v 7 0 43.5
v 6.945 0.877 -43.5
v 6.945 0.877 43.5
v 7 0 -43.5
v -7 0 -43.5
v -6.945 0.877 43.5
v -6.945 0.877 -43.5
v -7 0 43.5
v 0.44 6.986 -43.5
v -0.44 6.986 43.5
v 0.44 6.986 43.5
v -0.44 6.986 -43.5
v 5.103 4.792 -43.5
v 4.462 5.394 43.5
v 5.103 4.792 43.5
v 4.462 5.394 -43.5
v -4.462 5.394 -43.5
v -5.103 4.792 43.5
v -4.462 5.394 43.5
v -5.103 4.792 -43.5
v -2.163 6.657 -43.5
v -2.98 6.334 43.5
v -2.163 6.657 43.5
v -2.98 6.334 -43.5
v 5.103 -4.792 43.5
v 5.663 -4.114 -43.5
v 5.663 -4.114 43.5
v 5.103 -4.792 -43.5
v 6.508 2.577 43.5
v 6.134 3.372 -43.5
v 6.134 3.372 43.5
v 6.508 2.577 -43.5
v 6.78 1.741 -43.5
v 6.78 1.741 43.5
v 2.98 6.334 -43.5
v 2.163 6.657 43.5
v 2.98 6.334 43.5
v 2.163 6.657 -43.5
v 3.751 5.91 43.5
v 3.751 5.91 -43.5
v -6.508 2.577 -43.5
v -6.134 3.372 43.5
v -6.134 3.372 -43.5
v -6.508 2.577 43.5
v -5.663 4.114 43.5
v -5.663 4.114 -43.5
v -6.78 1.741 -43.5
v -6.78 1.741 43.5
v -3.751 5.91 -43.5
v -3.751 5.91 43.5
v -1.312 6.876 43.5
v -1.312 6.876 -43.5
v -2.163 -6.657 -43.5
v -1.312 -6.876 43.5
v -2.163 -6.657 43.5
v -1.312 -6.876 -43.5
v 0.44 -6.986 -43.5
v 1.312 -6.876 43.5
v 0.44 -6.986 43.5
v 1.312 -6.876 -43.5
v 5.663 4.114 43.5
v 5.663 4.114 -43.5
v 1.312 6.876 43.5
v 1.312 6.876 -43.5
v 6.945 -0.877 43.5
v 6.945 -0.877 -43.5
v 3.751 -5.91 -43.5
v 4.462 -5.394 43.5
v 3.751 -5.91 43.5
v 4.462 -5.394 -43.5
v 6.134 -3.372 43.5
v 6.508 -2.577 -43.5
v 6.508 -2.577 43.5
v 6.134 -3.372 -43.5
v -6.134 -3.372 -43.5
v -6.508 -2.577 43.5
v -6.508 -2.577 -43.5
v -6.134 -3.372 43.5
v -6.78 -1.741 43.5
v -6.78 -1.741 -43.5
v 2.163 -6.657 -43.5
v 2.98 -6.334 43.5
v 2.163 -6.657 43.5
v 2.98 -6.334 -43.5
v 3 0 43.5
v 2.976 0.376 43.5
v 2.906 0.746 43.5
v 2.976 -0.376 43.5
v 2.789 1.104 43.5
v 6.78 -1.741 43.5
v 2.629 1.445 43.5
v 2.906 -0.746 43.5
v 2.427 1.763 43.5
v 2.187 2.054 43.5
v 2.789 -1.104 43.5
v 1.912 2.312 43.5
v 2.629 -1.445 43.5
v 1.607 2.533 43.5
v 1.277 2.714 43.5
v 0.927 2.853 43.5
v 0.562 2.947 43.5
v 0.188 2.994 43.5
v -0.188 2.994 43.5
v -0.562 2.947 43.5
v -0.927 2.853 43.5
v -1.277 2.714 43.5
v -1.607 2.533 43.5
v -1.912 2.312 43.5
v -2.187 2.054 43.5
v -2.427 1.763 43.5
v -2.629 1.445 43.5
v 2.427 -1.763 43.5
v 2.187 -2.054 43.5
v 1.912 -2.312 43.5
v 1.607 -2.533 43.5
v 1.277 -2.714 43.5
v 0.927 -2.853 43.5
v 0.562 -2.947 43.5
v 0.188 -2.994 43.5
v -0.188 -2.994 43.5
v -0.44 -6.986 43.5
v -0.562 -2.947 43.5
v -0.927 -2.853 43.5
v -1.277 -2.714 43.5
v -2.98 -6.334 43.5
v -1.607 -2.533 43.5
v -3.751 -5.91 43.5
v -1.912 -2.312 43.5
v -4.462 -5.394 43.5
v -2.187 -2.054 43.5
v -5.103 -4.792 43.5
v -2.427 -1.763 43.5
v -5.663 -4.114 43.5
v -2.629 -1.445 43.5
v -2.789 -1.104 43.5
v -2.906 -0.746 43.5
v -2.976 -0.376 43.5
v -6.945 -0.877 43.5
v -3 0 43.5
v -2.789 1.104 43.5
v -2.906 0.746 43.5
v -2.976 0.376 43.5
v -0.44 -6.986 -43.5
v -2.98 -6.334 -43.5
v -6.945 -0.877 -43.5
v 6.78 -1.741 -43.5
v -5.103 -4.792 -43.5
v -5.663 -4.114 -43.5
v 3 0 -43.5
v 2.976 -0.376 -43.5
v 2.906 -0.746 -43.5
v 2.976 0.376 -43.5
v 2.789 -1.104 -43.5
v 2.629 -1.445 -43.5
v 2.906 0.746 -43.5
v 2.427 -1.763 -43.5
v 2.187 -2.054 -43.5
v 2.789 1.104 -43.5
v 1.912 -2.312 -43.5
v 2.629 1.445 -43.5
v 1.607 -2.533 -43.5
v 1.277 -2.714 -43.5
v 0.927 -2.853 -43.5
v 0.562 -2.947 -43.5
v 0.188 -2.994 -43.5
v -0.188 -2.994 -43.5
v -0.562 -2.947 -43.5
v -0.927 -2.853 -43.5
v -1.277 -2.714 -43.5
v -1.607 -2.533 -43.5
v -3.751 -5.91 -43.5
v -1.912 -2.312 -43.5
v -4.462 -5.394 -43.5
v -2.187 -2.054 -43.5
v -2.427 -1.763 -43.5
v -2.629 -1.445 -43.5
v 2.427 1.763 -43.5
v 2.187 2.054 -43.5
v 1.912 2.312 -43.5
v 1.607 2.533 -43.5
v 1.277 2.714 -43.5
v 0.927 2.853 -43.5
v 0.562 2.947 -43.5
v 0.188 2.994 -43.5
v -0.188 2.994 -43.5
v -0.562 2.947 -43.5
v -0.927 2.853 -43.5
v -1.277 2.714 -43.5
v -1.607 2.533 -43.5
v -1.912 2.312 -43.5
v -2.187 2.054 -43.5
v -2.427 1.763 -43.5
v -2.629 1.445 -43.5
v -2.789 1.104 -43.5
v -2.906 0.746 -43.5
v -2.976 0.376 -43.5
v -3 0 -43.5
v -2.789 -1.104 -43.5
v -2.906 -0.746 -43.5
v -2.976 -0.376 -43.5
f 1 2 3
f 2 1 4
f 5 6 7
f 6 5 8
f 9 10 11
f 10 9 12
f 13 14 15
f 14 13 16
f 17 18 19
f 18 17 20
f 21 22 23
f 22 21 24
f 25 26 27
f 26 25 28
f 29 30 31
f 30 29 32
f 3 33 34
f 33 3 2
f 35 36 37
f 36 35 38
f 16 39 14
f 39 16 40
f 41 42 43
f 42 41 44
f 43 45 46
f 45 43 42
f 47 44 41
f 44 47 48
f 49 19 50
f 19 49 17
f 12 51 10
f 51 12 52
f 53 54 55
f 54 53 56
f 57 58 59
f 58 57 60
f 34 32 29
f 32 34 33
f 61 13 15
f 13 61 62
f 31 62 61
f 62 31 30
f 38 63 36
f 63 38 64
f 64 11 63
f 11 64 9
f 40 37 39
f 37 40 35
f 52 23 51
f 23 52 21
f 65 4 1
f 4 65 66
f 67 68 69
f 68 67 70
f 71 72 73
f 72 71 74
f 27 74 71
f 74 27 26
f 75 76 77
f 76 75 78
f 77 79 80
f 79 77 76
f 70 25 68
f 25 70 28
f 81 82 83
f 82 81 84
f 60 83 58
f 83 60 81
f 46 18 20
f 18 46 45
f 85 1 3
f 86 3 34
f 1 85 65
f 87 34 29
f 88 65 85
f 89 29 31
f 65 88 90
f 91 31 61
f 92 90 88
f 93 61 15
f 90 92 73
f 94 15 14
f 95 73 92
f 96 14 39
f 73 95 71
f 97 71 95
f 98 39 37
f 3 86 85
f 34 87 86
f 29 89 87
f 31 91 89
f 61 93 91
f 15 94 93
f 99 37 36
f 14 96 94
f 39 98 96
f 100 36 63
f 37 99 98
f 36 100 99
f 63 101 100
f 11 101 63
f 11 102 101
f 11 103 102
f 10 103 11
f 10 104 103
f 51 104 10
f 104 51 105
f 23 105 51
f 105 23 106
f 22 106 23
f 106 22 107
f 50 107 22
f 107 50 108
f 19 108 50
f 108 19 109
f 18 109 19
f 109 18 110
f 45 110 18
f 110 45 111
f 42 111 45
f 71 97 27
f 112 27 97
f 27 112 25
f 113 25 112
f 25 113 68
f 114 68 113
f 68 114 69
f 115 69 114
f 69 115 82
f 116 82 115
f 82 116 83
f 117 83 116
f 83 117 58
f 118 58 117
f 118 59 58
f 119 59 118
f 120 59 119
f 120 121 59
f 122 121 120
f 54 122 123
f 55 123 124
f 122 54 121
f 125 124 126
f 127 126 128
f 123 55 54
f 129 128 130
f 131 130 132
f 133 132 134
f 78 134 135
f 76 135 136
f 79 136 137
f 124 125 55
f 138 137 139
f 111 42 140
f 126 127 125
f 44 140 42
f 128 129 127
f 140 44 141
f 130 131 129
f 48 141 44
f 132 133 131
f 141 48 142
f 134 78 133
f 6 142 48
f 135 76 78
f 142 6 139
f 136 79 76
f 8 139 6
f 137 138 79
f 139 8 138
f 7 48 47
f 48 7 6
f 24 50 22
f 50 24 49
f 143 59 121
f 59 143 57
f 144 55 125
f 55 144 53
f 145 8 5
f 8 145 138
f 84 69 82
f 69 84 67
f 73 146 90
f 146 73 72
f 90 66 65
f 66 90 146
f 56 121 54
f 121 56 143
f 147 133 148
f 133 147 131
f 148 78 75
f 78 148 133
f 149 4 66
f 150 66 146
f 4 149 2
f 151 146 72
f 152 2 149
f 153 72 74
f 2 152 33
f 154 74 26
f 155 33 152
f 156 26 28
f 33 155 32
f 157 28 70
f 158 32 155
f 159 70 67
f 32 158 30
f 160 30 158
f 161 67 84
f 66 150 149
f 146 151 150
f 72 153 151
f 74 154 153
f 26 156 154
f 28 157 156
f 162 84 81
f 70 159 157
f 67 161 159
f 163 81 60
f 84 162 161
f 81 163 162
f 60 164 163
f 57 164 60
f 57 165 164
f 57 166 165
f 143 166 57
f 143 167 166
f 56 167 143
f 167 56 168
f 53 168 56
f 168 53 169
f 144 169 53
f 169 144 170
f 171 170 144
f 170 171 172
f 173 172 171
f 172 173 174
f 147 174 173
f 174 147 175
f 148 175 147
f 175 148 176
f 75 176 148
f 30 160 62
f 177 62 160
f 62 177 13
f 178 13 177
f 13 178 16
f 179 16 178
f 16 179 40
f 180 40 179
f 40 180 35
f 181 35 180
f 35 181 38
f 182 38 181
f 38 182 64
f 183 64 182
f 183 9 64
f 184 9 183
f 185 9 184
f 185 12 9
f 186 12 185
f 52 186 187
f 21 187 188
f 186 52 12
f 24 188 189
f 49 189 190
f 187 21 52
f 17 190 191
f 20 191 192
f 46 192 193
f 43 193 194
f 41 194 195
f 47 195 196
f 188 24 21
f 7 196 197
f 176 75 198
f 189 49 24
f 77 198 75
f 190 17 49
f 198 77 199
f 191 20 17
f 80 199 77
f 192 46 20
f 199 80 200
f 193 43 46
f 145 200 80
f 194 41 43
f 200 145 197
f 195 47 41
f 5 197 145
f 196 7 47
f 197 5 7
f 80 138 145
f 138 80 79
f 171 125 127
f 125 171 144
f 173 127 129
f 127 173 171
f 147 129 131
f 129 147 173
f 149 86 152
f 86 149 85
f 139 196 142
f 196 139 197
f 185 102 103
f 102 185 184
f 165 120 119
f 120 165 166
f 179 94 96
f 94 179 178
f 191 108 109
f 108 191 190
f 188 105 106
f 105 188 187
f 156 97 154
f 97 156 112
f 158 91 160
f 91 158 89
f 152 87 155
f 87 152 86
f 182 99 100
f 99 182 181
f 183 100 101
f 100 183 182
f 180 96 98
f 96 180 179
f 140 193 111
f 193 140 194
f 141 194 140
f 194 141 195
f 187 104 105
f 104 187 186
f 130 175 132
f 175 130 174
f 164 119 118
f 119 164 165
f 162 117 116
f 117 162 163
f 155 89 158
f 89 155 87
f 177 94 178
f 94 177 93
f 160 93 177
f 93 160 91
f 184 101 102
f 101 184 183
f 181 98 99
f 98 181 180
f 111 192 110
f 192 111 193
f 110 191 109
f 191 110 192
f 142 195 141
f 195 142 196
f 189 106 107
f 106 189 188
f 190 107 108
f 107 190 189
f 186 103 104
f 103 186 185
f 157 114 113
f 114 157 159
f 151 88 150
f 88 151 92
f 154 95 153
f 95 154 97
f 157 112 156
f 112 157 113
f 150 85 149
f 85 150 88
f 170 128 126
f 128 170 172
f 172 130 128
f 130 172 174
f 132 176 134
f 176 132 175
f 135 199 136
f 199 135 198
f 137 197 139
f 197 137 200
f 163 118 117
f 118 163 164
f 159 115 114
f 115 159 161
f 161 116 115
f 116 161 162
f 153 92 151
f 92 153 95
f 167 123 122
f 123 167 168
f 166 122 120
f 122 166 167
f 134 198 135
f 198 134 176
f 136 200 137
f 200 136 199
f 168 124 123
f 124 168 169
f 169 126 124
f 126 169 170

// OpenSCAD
$fn = 50;


difference() {
	union() {
		translate(v = [0, 0, -43.5000000000]) {
			cylinder(h = 87, r = 7.0000000000);
		}
	}
	union() {
		translate(v = [0, 0, -100.0000000000]) {
			cylinder(h = 200, r = 3.0000000000);
		}
	}
}
